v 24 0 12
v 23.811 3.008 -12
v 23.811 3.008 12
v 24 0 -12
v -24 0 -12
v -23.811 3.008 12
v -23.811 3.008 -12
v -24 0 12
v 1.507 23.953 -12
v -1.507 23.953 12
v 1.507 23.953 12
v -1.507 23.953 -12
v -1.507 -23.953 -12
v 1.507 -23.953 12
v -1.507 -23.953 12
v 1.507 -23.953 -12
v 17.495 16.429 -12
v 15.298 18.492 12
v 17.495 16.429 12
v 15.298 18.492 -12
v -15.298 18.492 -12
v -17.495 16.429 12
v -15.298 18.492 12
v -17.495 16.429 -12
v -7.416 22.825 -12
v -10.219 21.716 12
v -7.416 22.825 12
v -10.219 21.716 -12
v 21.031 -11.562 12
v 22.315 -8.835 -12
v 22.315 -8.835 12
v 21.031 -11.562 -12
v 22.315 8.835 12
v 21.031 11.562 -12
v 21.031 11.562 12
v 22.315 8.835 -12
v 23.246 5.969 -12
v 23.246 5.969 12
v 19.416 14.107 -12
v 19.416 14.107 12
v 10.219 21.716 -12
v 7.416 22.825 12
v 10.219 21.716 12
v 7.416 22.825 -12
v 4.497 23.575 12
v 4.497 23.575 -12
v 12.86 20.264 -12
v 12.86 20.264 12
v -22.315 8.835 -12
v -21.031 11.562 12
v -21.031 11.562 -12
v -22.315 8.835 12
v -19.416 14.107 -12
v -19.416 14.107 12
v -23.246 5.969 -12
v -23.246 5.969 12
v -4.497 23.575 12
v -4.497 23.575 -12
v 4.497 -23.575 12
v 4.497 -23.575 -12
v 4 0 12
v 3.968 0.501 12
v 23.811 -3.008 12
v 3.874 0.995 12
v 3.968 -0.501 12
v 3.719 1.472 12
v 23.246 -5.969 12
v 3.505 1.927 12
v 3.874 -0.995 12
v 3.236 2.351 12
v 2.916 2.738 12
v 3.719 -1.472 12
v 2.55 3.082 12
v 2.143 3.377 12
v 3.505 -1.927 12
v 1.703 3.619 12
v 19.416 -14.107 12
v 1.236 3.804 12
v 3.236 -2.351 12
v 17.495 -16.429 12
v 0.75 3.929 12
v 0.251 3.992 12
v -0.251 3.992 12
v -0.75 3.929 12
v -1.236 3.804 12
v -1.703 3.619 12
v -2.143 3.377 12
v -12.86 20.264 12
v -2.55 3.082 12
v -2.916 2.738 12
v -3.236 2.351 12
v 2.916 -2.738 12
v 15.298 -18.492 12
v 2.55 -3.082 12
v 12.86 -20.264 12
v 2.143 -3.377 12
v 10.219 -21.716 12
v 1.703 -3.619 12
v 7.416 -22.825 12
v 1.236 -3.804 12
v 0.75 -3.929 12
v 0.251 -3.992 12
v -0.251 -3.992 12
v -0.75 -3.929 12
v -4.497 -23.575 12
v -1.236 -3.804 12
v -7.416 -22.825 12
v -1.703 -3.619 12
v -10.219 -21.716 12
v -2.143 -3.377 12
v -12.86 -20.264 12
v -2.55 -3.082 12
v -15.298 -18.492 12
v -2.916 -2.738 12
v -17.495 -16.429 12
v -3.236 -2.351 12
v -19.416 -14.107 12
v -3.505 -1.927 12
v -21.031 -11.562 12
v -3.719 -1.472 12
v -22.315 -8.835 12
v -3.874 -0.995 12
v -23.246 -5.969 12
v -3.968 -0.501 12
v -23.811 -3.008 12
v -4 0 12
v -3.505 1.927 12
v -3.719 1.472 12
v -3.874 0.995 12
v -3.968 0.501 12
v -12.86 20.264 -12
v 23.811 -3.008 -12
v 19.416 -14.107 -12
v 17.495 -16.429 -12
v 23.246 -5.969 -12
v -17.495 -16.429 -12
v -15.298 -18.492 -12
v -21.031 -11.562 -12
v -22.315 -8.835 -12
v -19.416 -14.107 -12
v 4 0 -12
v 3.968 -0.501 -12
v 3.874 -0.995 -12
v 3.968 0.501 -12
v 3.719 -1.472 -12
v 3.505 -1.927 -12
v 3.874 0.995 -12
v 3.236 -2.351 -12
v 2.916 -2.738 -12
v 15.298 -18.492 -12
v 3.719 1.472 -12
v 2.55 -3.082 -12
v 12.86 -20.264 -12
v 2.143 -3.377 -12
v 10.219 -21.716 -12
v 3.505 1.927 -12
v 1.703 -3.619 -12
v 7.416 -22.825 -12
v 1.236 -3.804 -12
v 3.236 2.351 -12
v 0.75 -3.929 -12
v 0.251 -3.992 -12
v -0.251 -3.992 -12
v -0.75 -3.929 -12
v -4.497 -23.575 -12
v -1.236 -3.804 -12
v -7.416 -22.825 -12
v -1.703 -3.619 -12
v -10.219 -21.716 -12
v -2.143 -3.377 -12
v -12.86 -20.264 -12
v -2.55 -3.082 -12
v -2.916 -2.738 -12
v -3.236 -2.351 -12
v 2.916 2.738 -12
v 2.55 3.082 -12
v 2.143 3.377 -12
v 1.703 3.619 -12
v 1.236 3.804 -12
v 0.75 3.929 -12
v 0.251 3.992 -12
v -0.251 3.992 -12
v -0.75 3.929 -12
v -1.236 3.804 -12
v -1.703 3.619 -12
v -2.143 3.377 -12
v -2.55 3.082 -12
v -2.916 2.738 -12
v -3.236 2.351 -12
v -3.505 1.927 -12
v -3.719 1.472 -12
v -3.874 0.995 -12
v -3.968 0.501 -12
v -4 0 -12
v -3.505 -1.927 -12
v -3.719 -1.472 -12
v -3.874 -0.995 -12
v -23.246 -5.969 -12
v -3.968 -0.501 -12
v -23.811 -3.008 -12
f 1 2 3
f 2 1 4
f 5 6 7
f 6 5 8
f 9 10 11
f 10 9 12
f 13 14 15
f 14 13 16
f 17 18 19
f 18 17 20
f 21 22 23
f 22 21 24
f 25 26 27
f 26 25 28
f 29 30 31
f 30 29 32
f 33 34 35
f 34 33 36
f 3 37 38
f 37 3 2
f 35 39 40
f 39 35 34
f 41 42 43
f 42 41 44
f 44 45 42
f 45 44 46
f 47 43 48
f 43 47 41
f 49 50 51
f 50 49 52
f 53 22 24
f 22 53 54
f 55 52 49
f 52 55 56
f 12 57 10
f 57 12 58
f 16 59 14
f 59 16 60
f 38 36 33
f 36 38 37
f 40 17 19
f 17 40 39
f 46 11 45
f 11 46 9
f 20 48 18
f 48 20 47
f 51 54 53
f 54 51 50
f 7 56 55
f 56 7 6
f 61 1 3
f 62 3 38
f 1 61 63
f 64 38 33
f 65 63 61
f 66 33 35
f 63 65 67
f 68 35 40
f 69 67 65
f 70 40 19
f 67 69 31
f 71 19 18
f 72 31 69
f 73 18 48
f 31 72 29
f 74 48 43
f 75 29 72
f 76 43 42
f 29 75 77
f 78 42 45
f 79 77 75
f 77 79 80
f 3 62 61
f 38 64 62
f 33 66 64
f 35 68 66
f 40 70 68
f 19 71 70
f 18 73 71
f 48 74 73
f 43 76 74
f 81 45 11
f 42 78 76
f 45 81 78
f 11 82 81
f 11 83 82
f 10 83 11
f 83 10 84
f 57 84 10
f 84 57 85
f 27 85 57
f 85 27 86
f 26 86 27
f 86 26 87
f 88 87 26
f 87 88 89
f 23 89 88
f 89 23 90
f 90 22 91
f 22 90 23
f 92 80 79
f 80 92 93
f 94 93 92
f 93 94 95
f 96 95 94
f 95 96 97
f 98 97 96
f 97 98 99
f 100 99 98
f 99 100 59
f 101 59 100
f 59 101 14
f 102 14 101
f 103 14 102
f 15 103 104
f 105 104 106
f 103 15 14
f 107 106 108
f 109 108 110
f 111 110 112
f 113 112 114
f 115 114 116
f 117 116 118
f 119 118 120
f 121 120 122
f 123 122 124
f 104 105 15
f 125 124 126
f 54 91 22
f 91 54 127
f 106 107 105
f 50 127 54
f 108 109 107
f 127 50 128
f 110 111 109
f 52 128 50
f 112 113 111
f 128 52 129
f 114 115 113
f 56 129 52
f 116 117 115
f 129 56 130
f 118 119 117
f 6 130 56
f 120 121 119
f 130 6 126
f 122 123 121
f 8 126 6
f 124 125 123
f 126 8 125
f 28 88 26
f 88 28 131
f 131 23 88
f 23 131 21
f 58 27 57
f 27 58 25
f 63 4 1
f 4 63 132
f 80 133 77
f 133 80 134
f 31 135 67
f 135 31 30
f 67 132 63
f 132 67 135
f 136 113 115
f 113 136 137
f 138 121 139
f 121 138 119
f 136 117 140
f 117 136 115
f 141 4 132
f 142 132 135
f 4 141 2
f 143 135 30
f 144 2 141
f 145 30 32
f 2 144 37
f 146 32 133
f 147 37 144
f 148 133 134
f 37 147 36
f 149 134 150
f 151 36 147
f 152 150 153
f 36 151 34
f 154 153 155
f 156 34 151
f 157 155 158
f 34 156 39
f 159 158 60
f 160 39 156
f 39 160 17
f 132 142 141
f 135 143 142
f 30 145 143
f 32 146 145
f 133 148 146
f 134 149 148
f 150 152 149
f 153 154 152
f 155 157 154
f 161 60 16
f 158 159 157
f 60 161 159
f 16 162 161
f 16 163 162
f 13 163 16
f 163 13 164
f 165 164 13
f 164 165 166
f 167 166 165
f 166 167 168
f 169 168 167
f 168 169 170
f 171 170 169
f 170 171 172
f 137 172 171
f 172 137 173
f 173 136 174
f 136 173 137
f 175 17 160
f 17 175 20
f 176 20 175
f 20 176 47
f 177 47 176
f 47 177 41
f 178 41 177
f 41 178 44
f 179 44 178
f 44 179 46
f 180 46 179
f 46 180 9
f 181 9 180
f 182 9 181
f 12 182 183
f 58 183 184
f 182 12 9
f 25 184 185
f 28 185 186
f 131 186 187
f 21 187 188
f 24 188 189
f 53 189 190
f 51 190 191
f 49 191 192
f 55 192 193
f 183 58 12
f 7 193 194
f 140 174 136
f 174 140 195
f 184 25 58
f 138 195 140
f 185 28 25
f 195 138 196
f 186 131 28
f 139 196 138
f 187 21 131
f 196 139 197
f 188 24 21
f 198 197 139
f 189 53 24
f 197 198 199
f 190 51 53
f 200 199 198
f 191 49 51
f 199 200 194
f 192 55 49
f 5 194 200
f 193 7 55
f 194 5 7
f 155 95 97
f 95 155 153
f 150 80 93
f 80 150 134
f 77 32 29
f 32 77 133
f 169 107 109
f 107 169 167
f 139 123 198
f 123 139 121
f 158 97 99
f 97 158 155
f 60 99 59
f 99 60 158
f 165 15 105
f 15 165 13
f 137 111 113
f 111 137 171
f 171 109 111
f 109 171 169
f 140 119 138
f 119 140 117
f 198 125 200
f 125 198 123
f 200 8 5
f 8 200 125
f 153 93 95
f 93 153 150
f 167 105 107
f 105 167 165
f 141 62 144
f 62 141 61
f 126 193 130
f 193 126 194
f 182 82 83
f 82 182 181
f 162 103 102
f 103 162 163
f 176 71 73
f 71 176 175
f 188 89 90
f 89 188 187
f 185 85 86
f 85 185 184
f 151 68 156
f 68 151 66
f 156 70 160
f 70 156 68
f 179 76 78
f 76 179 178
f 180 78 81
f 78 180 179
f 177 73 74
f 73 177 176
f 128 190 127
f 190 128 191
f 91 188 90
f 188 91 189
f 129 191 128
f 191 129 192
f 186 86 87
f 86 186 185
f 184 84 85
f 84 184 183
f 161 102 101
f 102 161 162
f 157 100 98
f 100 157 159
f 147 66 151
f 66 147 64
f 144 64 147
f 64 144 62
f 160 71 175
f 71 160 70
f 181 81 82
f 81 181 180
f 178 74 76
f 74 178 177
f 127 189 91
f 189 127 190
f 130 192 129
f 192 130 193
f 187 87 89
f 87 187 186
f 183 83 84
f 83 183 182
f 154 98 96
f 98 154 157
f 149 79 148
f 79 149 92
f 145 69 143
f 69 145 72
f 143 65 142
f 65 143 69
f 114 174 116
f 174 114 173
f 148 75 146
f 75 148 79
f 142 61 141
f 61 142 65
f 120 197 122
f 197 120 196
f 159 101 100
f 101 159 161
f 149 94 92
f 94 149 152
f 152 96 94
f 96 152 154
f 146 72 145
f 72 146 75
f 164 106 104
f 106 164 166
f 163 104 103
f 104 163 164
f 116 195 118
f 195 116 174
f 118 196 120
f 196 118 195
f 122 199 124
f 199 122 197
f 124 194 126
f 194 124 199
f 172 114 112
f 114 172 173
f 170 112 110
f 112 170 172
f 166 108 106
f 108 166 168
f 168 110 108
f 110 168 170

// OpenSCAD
$fn = 50;


difference() {
	union() {
		translate(v = [0, 0, -12.0000000000]) {
			cylinder(h = 24, r = 24.0000000000);
		}
	}
	union() {
		translate(v = [0, 0, -100.0000000000]) {
			cylinder(h = 200, r = 4.0000000000);
		}
	}
}
